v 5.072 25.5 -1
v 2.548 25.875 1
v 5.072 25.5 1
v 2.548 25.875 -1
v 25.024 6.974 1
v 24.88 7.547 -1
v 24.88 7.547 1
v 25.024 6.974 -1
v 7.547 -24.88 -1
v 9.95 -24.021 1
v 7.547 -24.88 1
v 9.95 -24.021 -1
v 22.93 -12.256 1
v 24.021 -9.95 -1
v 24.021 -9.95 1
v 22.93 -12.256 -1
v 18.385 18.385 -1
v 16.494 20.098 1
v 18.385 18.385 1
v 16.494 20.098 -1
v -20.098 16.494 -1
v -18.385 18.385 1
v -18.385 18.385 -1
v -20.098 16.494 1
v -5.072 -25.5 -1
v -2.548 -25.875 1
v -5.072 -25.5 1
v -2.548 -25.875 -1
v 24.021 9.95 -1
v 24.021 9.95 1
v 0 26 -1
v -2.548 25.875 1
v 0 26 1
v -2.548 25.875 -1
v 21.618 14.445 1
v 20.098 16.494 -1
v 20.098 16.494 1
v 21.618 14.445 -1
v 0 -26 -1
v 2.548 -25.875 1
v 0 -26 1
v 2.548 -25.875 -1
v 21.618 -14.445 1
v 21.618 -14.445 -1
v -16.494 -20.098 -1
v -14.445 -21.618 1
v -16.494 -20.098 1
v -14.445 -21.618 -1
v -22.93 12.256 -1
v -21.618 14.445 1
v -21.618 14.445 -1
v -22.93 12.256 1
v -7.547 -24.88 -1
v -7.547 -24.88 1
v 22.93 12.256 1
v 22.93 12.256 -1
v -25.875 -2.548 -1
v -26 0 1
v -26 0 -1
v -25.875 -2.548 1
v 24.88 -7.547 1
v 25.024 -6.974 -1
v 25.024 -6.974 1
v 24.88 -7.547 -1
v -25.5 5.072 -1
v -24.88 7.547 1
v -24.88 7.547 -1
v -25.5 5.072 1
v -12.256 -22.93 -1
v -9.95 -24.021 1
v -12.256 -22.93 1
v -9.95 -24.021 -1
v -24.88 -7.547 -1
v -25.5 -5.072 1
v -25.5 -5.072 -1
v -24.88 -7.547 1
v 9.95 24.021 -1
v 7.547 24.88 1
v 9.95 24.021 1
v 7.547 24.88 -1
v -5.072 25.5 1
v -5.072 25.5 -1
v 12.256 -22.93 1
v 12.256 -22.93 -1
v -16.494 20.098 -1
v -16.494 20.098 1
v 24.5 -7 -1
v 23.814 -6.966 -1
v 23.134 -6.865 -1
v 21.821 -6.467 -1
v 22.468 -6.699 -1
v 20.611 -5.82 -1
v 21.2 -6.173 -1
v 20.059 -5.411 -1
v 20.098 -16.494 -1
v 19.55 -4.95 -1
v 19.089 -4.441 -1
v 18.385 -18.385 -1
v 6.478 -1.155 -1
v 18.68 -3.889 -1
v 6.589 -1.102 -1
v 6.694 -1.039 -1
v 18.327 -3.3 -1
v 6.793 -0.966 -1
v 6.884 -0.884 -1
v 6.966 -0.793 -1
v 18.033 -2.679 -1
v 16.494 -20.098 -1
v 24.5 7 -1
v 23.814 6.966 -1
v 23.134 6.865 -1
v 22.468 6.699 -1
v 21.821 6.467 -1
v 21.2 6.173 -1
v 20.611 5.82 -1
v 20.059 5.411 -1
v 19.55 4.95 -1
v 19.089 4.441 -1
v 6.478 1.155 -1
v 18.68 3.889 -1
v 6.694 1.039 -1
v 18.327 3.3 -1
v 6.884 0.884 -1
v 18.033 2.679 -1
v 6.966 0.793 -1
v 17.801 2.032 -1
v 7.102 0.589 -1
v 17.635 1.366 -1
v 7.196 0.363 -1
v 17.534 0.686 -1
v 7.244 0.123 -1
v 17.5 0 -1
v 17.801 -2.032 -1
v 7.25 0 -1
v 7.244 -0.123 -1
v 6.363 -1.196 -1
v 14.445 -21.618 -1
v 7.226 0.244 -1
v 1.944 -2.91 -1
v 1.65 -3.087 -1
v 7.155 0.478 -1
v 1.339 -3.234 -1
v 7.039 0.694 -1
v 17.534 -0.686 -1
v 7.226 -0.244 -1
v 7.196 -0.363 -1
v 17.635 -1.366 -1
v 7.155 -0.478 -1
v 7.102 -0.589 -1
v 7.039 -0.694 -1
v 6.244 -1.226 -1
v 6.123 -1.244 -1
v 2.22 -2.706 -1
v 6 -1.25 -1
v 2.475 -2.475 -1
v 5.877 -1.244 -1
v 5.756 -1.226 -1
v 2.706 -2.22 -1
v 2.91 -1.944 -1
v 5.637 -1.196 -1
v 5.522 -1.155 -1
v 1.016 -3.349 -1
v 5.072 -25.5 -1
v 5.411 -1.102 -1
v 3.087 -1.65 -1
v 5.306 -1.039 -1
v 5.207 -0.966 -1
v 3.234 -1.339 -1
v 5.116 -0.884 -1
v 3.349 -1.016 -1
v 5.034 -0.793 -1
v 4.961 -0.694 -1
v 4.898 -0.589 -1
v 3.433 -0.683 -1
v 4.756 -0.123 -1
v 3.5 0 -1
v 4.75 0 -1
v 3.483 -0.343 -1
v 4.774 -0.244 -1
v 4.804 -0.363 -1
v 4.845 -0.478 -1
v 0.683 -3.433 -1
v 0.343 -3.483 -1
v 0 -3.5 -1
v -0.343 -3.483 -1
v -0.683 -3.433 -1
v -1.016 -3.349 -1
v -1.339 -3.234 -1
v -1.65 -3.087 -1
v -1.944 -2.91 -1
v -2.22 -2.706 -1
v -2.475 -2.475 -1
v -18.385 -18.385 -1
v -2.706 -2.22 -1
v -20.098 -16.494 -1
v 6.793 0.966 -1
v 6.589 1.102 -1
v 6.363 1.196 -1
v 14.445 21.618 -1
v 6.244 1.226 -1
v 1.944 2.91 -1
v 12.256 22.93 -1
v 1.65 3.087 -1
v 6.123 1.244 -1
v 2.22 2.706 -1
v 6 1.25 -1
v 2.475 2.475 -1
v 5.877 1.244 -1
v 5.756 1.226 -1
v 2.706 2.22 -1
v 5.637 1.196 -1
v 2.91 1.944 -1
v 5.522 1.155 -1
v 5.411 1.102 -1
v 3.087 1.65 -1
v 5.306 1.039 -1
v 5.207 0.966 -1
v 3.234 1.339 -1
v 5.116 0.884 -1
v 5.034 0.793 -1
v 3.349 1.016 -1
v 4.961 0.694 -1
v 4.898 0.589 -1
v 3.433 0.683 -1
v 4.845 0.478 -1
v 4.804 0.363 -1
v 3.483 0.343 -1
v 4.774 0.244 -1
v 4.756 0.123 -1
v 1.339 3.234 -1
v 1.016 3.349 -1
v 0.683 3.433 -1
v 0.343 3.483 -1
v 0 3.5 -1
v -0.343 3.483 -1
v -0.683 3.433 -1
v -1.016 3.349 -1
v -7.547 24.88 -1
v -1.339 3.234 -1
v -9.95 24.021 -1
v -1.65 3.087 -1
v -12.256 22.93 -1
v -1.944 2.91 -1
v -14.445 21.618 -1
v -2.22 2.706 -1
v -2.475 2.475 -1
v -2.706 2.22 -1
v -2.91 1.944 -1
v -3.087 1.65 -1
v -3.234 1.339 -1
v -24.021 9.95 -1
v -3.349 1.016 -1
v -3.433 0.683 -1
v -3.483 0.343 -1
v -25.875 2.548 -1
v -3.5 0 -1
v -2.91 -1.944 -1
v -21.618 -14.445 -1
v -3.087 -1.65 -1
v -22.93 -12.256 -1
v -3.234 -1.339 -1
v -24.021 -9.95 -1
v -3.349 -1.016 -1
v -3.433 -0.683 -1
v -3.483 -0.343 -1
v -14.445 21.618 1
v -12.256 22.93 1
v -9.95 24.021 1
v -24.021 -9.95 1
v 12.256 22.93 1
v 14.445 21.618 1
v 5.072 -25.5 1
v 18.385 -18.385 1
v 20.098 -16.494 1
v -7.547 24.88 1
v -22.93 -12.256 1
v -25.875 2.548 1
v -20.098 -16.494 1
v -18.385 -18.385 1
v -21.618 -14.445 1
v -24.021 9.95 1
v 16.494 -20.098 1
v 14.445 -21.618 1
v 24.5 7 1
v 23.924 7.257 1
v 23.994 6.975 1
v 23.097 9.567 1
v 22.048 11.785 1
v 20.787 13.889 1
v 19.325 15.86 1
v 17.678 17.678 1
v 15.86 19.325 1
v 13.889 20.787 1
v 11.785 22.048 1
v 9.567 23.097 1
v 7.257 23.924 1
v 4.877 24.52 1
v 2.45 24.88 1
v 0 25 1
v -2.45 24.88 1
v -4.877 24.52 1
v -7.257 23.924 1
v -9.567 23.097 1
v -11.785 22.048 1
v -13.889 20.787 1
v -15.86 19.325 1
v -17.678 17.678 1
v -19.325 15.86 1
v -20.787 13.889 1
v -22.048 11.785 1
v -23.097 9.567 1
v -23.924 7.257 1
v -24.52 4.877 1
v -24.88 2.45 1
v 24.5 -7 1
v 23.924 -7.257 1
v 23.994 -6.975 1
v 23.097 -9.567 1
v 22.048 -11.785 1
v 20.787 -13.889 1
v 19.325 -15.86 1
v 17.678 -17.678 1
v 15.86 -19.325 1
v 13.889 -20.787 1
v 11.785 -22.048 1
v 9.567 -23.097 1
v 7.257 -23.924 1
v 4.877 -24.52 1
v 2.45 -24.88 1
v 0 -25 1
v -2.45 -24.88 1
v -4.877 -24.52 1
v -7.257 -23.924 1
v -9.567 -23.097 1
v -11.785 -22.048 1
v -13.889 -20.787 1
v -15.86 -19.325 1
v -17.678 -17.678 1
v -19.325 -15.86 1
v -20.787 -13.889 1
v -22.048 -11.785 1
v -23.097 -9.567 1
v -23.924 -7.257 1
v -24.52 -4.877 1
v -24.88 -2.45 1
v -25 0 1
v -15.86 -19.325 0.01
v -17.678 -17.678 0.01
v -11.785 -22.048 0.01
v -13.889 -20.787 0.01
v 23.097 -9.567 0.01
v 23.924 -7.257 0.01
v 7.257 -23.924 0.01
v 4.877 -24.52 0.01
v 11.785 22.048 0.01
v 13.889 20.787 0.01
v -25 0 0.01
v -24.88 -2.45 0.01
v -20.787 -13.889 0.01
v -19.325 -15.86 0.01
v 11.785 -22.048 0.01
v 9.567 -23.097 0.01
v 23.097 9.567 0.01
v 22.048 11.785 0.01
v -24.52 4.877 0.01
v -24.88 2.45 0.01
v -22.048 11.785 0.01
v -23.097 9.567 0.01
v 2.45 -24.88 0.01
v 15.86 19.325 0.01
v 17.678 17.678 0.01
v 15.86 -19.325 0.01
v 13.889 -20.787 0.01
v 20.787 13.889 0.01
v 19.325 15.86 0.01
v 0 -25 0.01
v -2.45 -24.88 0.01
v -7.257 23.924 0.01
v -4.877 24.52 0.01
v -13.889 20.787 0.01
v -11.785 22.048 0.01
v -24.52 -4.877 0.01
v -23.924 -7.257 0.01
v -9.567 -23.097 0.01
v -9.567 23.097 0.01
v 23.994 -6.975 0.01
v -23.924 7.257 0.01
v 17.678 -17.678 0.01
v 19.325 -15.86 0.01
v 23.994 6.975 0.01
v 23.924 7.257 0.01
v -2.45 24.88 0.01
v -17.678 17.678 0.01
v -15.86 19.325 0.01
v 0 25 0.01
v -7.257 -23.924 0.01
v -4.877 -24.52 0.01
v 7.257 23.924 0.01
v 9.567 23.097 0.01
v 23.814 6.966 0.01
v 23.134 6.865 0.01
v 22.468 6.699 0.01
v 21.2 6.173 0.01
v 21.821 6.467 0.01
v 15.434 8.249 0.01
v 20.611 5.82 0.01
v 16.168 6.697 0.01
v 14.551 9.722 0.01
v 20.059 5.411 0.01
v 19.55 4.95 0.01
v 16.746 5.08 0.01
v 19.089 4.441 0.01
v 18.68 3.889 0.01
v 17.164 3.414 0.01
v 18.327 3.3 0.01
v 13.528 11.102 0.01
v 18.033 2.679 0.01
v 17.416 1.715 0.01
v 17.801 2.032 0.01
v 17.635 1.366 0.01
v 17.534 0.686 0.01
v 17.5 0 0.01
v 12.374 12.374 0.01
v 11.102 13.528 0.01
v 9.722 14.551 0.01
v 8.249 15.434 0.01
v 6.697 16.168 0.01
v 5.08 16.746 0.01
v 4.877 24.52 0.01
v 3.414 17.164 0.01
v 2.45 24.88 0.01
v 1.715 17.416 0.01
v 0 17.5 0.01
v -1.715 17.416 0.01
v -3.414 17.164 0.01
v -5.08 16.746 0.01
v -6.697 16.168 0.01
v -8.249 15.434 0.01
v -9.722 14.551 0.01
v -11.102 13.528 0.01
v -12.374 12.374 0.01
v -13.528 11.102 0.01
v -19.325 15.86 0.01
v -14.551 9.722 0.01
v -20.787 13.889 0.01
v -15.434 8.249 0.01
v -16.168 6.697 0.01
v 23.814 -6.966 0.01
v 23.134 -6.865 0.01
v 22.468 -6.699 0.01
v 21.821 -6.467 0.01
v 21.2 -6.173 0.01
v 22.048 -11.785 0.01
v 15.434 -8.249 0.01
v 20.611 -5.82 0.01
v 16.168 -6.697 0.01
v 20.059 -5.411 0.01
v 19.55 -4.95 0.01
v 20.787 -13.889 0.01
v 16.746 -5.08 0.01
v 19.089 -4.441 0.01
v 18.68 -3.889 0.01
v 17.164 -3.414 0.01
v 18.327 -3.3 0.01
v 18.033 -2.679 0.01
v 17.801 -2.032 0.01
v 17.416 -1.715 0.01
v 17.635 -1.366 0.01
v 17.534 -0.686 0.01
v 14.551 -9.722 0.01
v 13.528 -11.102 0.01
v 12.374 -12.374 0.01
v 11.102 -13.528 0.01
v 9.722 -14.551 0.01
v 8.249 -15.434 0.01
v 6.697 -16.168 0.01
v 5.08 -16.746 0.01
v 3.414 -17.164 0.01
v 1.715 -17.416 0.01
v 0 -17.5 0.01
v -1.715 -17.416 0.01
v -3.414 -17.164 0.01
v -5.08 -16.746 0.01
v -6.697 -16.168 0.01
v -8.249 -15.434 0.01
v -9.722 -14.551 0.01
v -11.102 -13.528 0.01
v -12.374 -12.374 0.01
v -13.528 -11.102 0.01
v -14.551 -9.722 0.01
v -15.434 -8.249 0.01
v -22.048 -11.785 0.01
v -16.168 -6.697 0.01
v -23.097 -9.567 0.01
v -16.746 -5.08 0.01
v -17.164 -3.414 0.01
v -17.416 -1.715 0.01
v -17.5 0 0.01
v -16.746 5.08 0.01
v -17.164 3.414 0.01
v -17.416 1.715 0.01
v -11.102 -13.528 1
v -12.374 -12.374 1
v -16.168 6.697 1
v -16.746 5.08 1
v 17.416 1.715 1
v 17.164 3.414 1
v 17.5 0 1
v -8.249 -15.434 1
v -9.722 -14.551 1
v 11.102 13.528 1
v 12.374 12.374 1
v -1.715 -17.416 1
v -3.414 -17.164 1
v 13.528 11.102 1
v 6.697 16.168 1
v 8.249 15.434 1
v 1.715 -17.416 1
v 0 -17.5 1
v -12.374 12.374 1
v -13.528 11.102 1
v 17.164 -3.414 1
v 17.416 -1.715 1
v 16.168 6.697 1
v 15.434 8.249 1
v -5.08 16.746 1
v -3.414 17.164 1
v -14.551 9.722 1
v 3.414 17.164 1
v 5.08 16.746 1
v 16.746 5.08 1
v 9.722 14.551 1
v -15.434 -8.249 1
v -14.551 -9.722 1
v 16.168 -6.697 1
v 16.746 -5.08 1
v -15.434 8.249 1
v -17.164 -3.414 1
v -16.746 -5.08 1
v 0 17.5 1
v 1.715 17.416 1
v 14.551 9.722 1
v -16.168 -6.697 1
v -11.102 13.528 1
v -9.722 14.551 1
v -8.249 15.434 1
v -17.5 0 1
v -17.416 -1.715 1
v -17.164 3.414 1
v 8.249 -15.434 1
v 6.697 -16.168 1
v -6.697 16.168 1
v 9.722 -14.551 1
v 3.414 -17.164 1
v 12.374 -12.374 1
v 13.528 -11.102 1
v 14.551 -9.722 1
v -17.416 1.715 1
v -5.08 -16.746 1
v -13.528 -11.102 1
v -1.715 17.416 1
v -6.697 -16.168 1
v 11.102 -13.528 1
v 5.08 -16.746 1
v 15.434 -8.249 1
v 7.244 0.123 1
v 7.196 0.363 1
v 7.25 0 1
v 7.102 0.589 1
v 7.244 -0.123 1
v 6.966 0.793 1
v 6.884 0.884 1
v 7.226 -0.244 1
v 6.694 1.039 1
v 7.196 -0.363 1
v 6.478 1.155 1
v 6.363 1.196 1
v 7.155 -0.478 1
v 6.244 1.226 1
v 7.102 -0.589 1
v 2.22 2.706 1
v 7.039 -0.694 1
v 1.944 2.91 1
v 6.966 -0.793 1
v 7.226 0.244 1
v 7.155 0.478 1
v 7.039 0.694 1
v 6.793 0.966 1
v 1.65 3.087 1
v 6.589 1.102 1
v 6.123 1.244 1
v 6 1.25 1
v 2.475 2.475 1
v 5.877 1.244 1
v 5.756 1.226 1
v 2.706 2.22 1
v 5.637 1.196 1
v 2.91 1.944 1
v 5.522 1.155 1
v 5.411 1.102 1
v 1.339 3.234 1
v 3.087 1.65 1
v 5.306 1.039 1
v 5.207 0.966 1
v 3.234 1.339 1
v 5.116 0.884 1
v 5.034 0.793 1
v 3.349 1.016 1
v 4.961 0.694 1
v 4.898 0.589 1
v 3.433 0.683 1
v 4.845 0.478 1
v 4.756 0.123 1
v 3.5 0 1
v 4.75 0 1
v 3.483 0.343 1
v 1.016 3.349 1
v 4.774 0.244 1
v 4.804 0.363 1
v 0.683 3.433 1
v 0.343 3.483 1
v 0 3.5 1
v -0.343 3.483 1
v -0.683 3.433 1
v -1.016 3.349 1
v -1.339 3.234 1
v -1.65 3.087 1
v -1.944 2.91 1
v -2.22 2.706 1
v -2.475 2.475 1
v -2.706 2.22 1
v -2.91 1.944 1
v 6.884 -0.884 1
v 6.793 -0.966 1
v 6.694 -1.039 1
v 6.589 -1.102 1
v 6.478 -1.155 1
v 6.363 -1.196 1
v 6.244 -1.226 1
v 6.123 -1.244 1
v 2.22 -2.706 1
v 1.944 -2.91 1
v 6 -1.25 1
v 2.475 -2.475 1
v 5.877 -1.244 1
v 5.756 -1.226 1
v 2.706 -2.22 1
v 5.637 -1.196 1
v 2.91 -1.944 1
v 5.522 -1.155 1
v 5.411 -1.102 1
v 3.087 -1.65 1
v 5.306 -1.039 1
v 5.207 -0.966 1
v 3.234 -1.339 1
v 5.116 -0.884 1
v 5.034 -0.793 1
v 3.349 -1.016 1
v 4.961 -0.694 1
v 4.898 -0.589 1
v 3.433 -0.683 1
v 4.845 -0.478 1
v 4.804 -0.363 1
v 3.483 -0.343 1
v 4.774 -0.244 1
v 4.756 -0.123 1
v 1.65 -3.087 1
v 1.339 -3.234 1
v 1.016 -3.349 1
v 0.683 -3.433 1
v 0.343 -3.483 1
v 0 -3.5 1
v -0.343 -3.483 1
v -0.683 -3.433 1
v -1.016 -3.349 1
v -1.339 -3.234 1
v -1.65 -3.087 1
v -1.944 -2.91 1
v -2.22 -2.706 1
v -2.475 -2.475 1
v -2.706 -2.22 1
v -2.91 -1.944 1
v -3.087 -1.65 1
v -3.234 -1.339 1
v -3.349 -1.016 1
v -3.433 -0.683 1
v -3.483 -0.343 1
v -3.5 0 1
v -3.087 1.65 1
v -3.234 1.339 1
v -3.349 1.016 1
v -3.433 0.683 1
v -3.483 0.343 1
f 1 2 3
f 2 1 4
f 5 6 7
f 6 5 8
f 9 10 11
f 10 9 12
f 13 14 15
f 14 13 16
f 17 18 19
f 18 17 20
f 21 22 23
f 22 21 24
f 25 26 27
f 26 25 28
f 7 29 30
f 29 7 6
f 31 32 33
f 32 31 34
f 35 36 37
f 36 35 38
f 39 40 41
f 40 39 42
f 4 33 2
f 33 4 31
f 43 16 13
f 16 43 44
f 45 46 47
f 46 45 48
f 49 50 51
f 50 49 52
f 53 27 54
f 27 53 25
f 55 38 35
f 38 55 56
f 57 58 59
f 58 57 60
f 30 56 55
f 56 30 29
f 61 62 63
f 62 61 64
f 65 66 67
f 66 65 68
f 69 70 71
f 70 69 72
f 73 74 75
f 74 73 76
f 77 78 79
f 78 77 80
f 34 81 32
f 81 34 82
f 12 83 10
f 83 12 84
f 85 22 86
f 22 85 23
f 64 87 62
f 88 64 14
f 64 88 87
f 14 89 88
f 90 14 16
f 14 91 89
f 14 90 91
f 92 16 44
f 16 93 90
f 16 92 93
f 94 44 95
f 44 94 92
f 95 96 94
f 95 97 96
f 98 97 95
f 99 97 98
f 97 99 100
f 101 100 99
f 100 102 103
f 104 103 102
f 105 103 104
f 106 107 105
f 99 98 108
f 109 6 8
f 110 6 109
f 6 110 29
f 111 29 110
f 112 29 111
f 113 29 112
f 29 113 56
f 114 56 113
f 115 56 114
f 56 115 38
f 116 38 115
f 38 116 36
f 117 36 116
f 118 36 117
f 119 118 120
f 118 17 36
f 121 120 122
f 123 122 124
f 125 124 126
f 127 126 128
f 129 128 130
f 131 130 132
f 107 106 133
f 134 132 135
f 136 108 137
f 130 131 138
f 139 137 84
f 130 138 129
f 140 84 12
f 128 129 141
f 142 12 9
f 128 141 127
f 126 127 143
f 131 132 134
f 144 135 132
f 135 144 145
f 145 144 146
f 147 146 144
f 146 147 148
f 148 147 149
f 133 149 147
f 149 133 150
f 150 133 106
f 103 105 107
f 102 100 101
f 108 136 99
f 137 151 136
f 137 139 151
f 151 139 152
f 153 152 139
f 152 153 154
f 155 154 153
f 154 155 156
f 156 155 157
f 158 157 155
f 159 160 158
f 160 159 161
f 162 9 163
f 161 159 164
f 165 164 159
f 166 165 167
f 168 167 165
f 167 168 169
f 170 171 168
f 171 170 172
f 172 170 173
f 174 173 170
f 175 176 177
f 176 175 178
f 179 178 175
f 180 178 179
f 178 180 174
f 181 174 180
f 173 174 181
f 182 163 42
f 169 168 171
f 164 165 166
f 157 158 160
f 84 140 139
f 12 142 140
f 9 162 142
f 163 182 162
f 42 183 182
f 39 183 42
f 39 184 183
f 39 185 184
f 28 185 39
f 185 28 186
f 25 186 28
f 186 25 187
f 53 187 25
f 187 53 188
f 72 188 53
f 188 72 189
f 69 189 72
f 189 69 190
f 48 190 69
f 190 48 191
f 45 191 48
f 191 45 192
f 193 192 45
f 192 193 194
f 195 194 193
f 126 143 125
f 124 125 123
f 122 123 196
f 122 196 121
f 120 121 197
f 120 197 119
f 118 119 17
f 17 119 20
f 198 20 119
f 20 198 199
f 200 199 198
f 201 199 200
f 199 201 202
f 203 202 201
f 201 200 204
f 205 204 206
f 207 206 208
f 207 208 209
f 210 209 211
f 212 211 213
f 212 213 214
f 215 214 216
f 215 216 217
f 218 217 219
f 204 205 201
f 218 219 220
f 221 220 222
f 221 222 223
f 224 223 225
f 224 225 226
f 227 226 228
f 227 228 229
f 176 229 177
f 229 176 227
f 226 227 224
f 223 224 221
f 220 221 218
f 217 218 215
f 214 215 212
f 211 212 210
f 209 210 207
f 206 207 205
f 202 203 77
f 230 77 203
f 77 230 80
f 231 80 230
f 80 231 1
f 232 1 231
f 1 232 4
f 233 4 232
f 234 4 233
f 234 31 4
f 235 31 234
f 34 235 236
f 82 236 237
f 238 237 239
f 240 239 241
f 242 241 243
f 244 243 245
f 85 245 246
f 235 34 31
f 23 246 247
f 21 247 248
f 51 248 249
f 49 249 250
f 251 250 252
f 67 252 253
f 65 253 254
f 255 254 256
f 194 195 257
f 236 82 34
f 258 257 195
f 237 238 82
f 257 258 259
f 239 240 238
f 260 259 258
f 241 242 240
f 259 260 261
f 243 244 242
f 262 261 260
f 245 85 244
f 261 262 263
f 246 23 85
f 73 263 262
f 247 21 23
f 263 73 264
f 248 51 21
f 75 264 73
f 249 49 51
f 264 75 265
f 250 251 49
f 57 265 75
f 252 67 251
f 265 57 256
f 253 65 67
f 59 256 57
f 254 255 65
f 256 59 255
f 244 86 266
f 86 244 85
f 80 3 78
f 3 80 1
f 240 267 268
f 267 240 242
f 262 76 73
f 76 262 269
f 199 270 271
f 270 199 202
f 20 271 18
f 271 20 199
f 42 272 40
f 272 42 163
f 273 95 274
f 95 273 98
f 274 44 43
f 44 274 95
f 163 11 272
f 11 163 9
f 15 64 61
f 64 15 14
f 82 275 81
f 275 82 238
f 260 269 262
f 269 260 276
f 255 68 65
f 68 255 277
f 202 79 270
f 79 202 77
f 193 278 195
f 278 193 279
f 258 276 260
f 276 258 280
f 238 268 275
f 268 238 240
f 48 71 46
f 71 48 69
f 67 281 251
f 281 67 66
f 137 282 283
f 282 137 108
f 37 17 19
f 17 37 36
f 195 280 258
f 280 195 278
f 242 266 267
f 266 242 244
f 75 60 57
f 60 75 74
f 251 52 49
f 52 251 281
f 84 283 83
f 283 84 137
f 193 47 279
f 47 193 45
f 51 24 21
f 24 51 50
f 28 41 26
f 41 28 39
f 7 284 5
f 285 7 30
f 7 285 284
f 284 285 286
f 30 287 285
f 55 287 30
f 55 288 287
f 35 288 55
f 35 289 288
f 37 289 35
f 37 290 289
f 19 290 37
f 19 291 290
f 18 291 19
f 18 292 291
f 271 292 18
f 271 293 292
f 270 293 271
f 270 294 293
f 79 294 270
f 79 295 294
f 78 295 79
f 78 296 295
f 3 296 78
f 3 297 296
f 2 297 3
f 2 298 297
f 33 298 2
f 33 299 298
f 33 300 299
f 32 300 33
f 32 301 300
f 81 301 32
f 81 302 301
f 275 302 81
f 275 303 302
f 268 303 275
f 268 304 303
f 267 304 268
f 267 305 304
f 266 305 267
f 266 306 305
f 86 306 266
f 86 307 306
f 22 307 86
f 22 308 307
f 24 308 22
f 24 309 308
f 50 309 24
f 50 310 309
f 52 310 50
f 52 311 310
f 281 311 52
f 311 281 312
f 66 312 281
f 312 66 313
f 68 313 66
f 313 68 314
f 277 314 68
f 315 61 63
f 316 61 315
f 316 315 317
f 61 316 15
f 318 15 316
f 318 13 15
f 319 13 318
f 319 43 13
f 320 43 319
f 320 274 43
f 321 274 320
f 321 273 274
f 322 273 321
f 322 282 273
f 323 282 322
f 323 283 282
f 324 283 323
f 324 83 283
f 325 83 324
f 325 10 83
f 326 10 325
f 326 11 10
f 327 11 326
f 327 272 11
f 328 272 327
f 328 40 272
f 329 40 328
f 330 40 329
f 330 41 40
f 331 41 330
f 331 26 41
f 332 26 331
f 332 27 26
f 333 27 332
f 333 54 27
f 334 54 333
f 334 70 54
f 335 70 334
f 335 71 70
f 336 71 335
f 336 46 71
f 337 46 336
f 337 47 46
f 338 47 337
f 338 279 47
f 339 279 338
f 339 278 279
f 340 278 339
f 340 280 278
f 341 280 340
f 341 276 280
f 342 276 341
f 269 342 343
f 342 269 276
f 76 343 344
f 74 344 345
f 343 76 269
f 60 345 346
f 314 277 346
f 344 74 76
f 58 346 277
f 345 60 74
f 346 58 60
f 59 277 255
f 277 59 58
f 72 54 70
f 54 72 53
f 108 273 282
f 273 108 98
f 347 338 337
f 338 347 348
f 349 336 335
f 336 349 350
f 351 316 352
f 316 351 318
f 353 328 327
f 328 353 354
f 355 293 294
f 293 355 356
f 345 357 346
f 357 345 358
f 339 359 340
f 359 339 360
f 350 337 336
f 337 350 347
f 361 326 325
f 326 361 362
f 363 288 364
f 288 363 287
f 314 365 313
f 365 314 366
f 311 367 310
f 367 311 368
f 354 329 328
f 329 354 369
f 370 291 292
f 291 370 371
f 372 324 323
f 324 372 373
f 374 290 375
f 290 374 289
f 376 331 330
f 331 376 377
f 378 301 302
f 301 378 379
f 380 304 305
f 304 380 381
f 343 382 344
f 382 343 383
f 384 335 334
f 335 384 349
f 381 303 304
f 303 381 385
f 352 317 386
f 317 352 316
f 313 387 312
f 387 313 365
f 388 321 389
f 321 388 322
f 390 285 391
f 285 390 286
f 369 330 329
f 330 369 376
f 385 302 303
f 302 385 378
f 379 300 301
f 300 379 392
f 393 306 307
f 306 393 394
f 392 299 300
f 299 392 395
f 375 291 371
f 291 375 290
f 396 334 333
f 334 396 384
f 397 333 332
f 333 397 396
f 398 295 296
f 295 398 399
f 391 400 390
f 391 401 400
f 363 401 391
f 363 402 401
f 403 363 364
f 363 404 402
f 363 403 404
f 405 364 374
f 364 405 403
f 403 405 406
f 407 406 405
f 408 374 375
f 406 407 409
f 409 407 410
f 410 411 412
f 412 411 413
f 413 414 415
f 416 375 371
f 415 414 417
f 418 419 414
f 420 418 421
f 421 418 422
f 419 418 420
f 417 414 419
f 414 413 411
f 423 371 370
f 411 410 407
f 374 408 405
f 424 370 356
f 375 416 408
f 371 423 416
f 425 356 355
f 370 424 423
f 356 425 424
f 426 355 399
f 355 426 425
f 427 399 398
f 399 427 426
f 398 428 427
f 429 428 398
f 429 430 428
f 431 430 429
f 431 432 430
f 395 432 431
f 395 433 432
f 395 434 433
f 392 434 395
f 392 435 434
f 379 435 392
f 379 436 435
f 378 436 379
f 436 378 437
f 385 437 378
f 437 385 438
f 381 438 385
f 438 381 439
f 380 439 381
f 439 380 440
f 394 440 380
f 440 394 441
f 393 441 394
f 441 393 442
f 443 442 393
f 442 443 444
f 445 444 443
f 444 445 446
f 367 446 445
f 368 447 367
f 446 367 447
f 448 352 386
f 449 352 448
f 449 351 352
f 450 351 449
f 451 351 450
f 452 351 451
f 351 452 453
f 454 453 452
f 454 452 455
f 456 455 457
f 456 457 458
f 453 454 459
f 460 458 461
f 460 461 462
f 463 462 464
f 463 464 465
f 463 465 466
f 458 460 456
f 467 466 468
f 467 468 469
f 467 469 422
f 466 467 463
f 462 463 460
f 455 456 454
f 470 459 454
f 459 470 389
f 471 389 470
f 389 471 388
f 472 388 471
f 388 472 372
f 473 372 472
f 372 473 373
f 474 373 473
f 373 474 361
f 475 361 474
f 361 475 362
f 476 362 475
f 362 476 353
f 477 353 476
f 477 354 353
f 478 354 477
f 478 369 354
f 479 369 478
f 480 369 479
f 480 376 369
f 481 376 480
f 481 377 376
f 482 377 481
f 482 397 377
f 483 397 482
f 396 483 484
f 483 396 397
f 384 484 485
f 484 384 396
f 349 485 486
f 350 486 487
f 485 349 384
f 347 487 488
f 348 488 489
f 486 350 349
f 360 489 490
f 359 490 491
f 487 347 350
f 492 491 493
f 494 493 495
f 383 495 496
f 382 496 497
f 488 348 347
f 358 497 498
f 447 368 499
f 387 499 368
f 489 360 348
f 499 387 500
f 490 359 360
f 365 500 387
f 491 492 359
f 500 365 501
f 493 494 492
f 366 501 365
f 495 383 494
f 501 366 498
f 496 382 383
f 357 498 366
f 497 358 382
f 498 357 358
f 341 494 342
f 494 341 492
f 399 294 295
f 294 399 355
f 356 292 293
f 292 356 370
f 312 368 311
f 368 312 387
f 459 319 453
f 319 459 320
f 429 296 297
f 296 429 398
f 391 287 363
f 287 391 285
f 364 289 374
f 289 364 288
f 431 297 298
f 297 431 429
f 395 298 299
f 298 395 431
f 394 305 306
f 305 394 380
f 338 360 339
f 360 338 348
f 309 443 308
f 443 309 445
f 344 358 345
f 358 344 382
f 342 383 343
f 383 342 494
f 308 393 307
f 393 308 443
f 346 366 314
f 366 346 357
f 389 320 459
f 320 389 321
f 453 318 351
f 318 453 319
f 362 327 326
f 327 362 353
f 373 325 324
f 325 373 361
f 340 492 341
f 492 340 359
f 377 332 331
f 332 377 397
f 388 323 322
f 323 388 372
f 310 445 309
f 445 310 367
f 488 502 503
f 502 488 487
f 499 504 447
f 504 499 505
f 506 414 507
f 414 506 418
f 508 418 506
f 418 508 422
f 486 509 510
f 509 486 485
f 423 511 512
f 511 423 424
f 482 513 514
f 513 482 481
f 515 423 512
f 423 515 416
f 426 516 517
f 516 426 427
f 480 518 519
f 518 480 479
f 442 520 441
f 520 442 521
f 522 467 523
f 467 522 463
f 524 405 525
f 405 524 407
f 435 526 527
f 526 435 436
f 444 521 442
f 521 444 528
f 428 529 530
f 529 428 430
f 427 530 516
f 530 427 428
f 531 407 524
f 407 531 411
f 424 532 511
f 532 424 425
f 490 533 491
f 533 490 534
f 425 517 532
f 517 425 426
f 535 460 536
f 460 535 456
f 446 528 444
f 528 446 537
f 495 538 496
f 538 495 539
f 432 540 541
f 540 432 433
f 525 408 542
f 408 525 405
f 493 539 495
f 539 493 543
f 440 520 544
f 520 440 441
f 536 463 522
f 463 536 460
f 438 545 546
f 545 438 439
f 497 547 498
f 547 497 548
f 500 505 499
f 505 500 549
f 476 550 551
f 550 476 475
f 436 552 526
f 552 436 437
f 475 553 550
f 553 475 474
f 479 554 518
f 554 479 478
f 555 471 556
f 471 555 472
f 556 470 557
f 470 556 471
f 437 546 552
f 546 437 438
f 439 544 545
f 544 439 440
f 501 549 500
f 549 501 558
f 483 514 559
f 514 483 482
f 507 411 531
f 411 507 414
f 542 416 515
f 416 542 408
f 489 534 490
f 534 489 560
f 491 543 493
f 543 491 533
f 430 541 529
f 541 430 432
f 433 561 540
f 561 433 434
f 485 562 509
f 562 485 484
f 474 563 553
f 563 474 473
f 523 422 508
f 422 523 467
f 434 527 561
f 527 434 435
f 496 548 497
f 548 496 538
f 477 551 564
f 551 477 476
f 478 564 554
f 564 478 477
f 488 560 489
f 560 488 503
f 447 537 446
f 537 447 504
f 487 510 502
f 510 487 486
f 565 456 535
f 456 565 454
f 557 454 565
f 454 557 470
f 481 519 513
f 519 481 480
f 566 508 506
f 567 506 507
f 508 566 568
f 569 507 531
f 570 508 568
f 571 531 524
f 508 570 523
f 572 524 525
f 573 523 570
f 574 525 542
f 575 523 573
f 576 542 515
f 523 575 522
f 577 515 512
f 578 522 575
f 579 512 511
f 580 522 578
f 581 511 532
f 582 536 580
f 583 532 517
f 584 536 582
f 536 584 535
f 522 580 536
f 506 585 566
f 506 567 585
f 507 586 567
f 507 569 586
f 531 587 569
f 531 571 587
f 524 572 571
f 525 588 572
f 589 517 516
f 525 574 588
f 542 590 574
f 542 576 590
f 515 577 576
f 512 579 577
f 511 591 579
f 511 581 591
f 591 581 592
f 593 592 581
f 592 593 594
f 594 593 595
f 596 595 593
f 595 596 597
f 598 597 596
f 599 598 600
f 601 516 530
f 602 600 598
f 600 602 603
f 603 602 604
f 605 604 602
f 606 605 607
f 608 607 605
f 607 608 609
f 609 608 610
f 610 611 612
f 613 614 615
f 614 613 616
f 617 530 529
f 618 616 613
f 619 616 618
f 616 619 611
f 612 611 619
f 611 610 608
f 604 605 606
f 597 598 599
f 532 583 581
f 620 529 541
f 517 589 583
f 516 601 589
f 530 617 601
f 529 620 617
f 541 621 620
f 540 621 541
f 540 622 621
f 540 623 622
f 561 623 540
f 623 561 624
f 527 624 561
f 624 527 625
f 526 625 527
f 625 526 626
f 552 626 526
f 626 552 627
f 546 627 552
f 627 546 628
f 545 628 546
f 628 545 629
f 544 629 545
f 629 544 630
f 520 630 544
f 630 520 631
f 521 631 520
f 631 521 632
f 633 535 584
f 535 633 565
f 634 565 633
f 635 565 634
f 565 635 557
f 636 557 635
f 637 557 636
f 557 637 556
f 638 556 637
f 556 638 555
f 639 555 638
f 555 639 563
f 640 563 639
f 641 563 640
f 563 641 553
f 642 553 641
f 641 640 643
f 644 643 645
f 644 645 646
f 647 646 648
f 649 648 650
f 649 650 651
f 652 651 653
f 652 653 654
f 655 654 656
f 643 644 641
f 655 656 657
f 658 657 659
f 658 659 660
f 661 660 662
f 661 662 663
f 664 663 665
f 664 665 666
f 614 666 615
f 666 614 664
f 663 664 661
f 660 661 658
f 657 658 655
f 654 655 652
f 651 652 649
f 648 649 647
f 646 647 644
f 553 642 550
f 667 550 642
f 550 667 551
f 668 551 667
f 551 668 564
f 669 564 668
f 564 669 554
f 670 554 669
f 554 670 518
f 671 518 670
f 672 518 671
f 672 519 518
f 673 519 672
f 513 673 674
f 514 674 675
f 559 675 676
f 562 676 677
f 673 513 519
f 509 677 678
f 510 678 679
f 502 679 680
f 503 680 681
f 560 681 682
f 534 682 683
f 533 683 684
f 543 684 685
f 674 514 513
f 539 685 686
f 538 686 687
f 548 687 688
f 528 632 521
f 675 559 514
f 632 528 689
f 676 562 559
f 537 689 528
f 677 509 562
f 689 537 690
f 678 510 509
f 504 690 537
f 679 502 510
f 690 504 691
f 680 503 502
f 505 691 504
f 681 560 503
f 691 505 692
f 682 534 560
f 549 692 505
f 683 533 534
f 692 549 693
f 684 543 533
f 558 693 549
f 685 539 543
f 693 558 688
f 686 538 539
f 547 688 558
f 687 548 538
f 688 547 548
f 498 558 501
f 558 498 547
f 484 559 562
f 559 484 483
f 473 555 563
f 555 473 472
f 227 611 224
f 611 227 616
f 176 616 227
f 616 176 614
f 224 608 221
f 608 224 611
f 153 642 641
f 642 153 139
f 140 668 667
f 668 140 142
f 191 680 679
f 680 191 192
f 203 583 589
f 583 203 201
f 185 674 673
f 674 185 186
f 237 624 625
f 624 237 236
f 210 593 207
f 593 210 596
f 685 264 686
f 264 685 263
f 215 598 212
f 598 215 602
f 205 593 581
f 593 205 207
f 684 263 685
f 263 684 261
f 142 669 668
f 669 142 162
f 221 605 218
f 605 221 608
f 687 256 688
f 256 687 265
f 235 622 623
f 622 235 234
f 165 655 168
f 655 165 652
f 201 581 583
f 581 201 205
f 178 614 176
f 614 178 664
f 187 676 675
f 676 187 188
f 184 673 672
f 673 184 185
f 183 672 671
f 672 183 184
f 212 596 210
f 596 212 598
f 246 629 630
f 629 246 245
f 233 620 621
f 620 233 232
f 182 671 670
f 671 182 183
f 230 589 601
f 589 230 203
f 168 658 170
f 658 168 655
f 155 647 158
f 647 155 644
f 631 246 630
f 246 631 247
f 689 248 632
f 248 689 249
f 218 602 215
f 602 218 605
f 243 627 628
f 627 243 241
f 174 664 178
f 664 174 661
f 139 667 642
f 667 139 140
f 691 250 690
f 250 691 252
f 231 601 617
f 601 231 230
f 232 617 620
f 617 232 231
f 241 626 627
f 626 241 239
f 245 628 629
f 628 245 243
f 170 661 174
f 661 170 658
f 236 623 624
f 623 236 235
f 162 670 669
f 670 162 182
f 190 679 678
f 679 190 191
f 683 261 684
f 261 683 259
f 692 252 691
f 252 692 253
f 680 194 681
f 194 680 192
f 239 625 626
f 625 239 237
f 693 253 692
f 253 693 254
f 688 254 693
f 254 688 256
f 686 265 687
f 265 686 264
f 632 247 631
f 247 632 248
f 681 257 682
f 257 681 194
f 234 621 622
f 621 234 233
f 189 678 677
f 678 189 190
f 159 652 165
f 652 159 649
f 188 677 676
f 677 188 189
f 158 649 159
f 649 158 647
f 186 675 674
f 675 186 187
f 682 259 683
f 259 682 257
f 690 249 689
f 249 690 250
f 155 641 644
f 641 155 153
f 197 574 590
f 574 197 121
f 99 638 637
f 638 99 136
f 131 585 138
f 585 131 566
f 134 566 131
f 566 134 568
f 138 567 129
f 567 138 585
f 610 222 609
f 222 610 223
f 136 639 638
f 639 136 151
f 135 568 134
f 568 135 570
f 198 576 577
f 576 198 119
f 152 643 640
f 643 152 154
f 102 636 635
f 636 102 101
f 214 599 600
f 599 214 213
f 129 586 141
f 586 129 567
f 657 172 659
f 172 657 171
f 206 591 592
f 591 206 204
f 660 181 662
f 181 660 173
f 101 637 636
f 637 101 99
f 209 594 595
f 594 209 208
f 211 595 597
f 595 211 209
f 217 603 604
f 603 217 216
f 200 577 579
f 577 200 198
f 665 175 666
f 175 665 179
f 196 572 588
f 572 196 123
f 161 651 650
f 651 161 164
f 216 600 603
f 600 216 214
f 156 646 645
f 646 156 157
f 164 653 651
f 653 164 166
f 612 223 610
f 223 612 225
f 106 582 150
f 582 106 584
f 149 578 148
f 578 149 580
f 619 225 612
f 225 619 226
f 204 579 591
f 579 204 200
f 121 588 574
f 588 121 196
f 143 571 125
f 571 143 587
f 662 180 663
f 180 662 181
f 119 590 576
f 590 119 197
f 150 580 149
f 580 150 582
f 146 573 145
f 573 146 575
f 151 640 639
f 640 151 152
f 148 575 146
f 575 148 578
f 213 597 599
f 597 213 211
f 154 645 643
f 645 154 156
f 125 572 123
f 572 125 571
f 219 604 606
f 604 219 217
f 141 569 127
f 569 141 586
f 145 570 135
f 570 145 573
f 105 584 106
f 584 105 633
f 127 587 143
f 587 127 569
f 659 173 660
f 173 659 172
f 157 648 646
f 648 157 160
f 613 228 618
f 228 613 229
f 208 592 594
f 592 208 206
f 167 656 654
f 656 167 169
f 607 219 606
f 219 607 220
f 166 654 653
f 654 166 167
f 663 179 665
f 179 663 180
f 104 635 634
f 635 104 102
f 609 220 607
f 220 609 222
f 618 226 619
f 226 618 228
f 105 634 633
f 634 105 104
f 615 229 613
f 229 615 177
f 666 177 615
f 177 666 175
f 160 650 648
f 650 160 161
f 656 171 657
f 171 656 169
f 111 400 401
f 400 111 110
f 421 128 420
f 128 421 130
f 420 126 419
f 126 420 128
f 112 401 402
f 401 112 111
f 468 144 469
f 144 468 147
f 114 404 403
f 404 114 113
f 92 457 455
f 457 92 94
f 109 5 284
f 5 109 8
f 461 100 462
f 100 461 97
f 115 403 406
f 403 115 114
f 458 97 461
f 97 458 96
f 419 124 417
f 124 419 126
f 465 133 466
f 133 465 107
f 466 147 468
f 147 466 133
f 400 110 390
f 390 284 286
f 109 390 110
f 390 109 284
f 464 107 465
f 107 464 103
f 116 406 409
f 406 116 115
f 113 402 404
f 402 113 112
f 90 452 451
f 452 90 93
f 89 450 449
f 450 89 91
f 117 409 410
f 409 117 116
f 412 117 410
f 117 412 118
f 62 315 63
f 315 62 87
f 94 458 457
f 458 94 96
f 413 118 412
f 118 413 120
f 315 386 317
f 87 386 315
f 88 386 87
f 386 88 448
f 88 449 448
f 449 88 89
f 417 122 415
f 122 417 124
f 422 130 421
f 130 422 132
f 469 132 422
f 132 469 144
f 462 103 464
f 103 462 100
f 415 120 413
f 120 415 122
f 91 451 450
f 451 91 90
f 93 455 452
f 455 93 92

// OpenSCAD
$fn = 64;



difference() {
    union() {
        cylinder(d=35, h=2, center=true);

        difference() {
            cylinder(d=52, h=2, center=true);
            translate([0, 0, 0.51]) {
                cylinder(d=50, h=1, center=true);
            }
        }
    }

    cylinder(d=7, h=30, center=true);
    translate([6, 0, 0]) {
        cylinder(d=2.5, h=30, center=true);
    }

    translate([24.5, 0, 0]) {
        cylinder(d=14, h=3, center=true);
    }

}
